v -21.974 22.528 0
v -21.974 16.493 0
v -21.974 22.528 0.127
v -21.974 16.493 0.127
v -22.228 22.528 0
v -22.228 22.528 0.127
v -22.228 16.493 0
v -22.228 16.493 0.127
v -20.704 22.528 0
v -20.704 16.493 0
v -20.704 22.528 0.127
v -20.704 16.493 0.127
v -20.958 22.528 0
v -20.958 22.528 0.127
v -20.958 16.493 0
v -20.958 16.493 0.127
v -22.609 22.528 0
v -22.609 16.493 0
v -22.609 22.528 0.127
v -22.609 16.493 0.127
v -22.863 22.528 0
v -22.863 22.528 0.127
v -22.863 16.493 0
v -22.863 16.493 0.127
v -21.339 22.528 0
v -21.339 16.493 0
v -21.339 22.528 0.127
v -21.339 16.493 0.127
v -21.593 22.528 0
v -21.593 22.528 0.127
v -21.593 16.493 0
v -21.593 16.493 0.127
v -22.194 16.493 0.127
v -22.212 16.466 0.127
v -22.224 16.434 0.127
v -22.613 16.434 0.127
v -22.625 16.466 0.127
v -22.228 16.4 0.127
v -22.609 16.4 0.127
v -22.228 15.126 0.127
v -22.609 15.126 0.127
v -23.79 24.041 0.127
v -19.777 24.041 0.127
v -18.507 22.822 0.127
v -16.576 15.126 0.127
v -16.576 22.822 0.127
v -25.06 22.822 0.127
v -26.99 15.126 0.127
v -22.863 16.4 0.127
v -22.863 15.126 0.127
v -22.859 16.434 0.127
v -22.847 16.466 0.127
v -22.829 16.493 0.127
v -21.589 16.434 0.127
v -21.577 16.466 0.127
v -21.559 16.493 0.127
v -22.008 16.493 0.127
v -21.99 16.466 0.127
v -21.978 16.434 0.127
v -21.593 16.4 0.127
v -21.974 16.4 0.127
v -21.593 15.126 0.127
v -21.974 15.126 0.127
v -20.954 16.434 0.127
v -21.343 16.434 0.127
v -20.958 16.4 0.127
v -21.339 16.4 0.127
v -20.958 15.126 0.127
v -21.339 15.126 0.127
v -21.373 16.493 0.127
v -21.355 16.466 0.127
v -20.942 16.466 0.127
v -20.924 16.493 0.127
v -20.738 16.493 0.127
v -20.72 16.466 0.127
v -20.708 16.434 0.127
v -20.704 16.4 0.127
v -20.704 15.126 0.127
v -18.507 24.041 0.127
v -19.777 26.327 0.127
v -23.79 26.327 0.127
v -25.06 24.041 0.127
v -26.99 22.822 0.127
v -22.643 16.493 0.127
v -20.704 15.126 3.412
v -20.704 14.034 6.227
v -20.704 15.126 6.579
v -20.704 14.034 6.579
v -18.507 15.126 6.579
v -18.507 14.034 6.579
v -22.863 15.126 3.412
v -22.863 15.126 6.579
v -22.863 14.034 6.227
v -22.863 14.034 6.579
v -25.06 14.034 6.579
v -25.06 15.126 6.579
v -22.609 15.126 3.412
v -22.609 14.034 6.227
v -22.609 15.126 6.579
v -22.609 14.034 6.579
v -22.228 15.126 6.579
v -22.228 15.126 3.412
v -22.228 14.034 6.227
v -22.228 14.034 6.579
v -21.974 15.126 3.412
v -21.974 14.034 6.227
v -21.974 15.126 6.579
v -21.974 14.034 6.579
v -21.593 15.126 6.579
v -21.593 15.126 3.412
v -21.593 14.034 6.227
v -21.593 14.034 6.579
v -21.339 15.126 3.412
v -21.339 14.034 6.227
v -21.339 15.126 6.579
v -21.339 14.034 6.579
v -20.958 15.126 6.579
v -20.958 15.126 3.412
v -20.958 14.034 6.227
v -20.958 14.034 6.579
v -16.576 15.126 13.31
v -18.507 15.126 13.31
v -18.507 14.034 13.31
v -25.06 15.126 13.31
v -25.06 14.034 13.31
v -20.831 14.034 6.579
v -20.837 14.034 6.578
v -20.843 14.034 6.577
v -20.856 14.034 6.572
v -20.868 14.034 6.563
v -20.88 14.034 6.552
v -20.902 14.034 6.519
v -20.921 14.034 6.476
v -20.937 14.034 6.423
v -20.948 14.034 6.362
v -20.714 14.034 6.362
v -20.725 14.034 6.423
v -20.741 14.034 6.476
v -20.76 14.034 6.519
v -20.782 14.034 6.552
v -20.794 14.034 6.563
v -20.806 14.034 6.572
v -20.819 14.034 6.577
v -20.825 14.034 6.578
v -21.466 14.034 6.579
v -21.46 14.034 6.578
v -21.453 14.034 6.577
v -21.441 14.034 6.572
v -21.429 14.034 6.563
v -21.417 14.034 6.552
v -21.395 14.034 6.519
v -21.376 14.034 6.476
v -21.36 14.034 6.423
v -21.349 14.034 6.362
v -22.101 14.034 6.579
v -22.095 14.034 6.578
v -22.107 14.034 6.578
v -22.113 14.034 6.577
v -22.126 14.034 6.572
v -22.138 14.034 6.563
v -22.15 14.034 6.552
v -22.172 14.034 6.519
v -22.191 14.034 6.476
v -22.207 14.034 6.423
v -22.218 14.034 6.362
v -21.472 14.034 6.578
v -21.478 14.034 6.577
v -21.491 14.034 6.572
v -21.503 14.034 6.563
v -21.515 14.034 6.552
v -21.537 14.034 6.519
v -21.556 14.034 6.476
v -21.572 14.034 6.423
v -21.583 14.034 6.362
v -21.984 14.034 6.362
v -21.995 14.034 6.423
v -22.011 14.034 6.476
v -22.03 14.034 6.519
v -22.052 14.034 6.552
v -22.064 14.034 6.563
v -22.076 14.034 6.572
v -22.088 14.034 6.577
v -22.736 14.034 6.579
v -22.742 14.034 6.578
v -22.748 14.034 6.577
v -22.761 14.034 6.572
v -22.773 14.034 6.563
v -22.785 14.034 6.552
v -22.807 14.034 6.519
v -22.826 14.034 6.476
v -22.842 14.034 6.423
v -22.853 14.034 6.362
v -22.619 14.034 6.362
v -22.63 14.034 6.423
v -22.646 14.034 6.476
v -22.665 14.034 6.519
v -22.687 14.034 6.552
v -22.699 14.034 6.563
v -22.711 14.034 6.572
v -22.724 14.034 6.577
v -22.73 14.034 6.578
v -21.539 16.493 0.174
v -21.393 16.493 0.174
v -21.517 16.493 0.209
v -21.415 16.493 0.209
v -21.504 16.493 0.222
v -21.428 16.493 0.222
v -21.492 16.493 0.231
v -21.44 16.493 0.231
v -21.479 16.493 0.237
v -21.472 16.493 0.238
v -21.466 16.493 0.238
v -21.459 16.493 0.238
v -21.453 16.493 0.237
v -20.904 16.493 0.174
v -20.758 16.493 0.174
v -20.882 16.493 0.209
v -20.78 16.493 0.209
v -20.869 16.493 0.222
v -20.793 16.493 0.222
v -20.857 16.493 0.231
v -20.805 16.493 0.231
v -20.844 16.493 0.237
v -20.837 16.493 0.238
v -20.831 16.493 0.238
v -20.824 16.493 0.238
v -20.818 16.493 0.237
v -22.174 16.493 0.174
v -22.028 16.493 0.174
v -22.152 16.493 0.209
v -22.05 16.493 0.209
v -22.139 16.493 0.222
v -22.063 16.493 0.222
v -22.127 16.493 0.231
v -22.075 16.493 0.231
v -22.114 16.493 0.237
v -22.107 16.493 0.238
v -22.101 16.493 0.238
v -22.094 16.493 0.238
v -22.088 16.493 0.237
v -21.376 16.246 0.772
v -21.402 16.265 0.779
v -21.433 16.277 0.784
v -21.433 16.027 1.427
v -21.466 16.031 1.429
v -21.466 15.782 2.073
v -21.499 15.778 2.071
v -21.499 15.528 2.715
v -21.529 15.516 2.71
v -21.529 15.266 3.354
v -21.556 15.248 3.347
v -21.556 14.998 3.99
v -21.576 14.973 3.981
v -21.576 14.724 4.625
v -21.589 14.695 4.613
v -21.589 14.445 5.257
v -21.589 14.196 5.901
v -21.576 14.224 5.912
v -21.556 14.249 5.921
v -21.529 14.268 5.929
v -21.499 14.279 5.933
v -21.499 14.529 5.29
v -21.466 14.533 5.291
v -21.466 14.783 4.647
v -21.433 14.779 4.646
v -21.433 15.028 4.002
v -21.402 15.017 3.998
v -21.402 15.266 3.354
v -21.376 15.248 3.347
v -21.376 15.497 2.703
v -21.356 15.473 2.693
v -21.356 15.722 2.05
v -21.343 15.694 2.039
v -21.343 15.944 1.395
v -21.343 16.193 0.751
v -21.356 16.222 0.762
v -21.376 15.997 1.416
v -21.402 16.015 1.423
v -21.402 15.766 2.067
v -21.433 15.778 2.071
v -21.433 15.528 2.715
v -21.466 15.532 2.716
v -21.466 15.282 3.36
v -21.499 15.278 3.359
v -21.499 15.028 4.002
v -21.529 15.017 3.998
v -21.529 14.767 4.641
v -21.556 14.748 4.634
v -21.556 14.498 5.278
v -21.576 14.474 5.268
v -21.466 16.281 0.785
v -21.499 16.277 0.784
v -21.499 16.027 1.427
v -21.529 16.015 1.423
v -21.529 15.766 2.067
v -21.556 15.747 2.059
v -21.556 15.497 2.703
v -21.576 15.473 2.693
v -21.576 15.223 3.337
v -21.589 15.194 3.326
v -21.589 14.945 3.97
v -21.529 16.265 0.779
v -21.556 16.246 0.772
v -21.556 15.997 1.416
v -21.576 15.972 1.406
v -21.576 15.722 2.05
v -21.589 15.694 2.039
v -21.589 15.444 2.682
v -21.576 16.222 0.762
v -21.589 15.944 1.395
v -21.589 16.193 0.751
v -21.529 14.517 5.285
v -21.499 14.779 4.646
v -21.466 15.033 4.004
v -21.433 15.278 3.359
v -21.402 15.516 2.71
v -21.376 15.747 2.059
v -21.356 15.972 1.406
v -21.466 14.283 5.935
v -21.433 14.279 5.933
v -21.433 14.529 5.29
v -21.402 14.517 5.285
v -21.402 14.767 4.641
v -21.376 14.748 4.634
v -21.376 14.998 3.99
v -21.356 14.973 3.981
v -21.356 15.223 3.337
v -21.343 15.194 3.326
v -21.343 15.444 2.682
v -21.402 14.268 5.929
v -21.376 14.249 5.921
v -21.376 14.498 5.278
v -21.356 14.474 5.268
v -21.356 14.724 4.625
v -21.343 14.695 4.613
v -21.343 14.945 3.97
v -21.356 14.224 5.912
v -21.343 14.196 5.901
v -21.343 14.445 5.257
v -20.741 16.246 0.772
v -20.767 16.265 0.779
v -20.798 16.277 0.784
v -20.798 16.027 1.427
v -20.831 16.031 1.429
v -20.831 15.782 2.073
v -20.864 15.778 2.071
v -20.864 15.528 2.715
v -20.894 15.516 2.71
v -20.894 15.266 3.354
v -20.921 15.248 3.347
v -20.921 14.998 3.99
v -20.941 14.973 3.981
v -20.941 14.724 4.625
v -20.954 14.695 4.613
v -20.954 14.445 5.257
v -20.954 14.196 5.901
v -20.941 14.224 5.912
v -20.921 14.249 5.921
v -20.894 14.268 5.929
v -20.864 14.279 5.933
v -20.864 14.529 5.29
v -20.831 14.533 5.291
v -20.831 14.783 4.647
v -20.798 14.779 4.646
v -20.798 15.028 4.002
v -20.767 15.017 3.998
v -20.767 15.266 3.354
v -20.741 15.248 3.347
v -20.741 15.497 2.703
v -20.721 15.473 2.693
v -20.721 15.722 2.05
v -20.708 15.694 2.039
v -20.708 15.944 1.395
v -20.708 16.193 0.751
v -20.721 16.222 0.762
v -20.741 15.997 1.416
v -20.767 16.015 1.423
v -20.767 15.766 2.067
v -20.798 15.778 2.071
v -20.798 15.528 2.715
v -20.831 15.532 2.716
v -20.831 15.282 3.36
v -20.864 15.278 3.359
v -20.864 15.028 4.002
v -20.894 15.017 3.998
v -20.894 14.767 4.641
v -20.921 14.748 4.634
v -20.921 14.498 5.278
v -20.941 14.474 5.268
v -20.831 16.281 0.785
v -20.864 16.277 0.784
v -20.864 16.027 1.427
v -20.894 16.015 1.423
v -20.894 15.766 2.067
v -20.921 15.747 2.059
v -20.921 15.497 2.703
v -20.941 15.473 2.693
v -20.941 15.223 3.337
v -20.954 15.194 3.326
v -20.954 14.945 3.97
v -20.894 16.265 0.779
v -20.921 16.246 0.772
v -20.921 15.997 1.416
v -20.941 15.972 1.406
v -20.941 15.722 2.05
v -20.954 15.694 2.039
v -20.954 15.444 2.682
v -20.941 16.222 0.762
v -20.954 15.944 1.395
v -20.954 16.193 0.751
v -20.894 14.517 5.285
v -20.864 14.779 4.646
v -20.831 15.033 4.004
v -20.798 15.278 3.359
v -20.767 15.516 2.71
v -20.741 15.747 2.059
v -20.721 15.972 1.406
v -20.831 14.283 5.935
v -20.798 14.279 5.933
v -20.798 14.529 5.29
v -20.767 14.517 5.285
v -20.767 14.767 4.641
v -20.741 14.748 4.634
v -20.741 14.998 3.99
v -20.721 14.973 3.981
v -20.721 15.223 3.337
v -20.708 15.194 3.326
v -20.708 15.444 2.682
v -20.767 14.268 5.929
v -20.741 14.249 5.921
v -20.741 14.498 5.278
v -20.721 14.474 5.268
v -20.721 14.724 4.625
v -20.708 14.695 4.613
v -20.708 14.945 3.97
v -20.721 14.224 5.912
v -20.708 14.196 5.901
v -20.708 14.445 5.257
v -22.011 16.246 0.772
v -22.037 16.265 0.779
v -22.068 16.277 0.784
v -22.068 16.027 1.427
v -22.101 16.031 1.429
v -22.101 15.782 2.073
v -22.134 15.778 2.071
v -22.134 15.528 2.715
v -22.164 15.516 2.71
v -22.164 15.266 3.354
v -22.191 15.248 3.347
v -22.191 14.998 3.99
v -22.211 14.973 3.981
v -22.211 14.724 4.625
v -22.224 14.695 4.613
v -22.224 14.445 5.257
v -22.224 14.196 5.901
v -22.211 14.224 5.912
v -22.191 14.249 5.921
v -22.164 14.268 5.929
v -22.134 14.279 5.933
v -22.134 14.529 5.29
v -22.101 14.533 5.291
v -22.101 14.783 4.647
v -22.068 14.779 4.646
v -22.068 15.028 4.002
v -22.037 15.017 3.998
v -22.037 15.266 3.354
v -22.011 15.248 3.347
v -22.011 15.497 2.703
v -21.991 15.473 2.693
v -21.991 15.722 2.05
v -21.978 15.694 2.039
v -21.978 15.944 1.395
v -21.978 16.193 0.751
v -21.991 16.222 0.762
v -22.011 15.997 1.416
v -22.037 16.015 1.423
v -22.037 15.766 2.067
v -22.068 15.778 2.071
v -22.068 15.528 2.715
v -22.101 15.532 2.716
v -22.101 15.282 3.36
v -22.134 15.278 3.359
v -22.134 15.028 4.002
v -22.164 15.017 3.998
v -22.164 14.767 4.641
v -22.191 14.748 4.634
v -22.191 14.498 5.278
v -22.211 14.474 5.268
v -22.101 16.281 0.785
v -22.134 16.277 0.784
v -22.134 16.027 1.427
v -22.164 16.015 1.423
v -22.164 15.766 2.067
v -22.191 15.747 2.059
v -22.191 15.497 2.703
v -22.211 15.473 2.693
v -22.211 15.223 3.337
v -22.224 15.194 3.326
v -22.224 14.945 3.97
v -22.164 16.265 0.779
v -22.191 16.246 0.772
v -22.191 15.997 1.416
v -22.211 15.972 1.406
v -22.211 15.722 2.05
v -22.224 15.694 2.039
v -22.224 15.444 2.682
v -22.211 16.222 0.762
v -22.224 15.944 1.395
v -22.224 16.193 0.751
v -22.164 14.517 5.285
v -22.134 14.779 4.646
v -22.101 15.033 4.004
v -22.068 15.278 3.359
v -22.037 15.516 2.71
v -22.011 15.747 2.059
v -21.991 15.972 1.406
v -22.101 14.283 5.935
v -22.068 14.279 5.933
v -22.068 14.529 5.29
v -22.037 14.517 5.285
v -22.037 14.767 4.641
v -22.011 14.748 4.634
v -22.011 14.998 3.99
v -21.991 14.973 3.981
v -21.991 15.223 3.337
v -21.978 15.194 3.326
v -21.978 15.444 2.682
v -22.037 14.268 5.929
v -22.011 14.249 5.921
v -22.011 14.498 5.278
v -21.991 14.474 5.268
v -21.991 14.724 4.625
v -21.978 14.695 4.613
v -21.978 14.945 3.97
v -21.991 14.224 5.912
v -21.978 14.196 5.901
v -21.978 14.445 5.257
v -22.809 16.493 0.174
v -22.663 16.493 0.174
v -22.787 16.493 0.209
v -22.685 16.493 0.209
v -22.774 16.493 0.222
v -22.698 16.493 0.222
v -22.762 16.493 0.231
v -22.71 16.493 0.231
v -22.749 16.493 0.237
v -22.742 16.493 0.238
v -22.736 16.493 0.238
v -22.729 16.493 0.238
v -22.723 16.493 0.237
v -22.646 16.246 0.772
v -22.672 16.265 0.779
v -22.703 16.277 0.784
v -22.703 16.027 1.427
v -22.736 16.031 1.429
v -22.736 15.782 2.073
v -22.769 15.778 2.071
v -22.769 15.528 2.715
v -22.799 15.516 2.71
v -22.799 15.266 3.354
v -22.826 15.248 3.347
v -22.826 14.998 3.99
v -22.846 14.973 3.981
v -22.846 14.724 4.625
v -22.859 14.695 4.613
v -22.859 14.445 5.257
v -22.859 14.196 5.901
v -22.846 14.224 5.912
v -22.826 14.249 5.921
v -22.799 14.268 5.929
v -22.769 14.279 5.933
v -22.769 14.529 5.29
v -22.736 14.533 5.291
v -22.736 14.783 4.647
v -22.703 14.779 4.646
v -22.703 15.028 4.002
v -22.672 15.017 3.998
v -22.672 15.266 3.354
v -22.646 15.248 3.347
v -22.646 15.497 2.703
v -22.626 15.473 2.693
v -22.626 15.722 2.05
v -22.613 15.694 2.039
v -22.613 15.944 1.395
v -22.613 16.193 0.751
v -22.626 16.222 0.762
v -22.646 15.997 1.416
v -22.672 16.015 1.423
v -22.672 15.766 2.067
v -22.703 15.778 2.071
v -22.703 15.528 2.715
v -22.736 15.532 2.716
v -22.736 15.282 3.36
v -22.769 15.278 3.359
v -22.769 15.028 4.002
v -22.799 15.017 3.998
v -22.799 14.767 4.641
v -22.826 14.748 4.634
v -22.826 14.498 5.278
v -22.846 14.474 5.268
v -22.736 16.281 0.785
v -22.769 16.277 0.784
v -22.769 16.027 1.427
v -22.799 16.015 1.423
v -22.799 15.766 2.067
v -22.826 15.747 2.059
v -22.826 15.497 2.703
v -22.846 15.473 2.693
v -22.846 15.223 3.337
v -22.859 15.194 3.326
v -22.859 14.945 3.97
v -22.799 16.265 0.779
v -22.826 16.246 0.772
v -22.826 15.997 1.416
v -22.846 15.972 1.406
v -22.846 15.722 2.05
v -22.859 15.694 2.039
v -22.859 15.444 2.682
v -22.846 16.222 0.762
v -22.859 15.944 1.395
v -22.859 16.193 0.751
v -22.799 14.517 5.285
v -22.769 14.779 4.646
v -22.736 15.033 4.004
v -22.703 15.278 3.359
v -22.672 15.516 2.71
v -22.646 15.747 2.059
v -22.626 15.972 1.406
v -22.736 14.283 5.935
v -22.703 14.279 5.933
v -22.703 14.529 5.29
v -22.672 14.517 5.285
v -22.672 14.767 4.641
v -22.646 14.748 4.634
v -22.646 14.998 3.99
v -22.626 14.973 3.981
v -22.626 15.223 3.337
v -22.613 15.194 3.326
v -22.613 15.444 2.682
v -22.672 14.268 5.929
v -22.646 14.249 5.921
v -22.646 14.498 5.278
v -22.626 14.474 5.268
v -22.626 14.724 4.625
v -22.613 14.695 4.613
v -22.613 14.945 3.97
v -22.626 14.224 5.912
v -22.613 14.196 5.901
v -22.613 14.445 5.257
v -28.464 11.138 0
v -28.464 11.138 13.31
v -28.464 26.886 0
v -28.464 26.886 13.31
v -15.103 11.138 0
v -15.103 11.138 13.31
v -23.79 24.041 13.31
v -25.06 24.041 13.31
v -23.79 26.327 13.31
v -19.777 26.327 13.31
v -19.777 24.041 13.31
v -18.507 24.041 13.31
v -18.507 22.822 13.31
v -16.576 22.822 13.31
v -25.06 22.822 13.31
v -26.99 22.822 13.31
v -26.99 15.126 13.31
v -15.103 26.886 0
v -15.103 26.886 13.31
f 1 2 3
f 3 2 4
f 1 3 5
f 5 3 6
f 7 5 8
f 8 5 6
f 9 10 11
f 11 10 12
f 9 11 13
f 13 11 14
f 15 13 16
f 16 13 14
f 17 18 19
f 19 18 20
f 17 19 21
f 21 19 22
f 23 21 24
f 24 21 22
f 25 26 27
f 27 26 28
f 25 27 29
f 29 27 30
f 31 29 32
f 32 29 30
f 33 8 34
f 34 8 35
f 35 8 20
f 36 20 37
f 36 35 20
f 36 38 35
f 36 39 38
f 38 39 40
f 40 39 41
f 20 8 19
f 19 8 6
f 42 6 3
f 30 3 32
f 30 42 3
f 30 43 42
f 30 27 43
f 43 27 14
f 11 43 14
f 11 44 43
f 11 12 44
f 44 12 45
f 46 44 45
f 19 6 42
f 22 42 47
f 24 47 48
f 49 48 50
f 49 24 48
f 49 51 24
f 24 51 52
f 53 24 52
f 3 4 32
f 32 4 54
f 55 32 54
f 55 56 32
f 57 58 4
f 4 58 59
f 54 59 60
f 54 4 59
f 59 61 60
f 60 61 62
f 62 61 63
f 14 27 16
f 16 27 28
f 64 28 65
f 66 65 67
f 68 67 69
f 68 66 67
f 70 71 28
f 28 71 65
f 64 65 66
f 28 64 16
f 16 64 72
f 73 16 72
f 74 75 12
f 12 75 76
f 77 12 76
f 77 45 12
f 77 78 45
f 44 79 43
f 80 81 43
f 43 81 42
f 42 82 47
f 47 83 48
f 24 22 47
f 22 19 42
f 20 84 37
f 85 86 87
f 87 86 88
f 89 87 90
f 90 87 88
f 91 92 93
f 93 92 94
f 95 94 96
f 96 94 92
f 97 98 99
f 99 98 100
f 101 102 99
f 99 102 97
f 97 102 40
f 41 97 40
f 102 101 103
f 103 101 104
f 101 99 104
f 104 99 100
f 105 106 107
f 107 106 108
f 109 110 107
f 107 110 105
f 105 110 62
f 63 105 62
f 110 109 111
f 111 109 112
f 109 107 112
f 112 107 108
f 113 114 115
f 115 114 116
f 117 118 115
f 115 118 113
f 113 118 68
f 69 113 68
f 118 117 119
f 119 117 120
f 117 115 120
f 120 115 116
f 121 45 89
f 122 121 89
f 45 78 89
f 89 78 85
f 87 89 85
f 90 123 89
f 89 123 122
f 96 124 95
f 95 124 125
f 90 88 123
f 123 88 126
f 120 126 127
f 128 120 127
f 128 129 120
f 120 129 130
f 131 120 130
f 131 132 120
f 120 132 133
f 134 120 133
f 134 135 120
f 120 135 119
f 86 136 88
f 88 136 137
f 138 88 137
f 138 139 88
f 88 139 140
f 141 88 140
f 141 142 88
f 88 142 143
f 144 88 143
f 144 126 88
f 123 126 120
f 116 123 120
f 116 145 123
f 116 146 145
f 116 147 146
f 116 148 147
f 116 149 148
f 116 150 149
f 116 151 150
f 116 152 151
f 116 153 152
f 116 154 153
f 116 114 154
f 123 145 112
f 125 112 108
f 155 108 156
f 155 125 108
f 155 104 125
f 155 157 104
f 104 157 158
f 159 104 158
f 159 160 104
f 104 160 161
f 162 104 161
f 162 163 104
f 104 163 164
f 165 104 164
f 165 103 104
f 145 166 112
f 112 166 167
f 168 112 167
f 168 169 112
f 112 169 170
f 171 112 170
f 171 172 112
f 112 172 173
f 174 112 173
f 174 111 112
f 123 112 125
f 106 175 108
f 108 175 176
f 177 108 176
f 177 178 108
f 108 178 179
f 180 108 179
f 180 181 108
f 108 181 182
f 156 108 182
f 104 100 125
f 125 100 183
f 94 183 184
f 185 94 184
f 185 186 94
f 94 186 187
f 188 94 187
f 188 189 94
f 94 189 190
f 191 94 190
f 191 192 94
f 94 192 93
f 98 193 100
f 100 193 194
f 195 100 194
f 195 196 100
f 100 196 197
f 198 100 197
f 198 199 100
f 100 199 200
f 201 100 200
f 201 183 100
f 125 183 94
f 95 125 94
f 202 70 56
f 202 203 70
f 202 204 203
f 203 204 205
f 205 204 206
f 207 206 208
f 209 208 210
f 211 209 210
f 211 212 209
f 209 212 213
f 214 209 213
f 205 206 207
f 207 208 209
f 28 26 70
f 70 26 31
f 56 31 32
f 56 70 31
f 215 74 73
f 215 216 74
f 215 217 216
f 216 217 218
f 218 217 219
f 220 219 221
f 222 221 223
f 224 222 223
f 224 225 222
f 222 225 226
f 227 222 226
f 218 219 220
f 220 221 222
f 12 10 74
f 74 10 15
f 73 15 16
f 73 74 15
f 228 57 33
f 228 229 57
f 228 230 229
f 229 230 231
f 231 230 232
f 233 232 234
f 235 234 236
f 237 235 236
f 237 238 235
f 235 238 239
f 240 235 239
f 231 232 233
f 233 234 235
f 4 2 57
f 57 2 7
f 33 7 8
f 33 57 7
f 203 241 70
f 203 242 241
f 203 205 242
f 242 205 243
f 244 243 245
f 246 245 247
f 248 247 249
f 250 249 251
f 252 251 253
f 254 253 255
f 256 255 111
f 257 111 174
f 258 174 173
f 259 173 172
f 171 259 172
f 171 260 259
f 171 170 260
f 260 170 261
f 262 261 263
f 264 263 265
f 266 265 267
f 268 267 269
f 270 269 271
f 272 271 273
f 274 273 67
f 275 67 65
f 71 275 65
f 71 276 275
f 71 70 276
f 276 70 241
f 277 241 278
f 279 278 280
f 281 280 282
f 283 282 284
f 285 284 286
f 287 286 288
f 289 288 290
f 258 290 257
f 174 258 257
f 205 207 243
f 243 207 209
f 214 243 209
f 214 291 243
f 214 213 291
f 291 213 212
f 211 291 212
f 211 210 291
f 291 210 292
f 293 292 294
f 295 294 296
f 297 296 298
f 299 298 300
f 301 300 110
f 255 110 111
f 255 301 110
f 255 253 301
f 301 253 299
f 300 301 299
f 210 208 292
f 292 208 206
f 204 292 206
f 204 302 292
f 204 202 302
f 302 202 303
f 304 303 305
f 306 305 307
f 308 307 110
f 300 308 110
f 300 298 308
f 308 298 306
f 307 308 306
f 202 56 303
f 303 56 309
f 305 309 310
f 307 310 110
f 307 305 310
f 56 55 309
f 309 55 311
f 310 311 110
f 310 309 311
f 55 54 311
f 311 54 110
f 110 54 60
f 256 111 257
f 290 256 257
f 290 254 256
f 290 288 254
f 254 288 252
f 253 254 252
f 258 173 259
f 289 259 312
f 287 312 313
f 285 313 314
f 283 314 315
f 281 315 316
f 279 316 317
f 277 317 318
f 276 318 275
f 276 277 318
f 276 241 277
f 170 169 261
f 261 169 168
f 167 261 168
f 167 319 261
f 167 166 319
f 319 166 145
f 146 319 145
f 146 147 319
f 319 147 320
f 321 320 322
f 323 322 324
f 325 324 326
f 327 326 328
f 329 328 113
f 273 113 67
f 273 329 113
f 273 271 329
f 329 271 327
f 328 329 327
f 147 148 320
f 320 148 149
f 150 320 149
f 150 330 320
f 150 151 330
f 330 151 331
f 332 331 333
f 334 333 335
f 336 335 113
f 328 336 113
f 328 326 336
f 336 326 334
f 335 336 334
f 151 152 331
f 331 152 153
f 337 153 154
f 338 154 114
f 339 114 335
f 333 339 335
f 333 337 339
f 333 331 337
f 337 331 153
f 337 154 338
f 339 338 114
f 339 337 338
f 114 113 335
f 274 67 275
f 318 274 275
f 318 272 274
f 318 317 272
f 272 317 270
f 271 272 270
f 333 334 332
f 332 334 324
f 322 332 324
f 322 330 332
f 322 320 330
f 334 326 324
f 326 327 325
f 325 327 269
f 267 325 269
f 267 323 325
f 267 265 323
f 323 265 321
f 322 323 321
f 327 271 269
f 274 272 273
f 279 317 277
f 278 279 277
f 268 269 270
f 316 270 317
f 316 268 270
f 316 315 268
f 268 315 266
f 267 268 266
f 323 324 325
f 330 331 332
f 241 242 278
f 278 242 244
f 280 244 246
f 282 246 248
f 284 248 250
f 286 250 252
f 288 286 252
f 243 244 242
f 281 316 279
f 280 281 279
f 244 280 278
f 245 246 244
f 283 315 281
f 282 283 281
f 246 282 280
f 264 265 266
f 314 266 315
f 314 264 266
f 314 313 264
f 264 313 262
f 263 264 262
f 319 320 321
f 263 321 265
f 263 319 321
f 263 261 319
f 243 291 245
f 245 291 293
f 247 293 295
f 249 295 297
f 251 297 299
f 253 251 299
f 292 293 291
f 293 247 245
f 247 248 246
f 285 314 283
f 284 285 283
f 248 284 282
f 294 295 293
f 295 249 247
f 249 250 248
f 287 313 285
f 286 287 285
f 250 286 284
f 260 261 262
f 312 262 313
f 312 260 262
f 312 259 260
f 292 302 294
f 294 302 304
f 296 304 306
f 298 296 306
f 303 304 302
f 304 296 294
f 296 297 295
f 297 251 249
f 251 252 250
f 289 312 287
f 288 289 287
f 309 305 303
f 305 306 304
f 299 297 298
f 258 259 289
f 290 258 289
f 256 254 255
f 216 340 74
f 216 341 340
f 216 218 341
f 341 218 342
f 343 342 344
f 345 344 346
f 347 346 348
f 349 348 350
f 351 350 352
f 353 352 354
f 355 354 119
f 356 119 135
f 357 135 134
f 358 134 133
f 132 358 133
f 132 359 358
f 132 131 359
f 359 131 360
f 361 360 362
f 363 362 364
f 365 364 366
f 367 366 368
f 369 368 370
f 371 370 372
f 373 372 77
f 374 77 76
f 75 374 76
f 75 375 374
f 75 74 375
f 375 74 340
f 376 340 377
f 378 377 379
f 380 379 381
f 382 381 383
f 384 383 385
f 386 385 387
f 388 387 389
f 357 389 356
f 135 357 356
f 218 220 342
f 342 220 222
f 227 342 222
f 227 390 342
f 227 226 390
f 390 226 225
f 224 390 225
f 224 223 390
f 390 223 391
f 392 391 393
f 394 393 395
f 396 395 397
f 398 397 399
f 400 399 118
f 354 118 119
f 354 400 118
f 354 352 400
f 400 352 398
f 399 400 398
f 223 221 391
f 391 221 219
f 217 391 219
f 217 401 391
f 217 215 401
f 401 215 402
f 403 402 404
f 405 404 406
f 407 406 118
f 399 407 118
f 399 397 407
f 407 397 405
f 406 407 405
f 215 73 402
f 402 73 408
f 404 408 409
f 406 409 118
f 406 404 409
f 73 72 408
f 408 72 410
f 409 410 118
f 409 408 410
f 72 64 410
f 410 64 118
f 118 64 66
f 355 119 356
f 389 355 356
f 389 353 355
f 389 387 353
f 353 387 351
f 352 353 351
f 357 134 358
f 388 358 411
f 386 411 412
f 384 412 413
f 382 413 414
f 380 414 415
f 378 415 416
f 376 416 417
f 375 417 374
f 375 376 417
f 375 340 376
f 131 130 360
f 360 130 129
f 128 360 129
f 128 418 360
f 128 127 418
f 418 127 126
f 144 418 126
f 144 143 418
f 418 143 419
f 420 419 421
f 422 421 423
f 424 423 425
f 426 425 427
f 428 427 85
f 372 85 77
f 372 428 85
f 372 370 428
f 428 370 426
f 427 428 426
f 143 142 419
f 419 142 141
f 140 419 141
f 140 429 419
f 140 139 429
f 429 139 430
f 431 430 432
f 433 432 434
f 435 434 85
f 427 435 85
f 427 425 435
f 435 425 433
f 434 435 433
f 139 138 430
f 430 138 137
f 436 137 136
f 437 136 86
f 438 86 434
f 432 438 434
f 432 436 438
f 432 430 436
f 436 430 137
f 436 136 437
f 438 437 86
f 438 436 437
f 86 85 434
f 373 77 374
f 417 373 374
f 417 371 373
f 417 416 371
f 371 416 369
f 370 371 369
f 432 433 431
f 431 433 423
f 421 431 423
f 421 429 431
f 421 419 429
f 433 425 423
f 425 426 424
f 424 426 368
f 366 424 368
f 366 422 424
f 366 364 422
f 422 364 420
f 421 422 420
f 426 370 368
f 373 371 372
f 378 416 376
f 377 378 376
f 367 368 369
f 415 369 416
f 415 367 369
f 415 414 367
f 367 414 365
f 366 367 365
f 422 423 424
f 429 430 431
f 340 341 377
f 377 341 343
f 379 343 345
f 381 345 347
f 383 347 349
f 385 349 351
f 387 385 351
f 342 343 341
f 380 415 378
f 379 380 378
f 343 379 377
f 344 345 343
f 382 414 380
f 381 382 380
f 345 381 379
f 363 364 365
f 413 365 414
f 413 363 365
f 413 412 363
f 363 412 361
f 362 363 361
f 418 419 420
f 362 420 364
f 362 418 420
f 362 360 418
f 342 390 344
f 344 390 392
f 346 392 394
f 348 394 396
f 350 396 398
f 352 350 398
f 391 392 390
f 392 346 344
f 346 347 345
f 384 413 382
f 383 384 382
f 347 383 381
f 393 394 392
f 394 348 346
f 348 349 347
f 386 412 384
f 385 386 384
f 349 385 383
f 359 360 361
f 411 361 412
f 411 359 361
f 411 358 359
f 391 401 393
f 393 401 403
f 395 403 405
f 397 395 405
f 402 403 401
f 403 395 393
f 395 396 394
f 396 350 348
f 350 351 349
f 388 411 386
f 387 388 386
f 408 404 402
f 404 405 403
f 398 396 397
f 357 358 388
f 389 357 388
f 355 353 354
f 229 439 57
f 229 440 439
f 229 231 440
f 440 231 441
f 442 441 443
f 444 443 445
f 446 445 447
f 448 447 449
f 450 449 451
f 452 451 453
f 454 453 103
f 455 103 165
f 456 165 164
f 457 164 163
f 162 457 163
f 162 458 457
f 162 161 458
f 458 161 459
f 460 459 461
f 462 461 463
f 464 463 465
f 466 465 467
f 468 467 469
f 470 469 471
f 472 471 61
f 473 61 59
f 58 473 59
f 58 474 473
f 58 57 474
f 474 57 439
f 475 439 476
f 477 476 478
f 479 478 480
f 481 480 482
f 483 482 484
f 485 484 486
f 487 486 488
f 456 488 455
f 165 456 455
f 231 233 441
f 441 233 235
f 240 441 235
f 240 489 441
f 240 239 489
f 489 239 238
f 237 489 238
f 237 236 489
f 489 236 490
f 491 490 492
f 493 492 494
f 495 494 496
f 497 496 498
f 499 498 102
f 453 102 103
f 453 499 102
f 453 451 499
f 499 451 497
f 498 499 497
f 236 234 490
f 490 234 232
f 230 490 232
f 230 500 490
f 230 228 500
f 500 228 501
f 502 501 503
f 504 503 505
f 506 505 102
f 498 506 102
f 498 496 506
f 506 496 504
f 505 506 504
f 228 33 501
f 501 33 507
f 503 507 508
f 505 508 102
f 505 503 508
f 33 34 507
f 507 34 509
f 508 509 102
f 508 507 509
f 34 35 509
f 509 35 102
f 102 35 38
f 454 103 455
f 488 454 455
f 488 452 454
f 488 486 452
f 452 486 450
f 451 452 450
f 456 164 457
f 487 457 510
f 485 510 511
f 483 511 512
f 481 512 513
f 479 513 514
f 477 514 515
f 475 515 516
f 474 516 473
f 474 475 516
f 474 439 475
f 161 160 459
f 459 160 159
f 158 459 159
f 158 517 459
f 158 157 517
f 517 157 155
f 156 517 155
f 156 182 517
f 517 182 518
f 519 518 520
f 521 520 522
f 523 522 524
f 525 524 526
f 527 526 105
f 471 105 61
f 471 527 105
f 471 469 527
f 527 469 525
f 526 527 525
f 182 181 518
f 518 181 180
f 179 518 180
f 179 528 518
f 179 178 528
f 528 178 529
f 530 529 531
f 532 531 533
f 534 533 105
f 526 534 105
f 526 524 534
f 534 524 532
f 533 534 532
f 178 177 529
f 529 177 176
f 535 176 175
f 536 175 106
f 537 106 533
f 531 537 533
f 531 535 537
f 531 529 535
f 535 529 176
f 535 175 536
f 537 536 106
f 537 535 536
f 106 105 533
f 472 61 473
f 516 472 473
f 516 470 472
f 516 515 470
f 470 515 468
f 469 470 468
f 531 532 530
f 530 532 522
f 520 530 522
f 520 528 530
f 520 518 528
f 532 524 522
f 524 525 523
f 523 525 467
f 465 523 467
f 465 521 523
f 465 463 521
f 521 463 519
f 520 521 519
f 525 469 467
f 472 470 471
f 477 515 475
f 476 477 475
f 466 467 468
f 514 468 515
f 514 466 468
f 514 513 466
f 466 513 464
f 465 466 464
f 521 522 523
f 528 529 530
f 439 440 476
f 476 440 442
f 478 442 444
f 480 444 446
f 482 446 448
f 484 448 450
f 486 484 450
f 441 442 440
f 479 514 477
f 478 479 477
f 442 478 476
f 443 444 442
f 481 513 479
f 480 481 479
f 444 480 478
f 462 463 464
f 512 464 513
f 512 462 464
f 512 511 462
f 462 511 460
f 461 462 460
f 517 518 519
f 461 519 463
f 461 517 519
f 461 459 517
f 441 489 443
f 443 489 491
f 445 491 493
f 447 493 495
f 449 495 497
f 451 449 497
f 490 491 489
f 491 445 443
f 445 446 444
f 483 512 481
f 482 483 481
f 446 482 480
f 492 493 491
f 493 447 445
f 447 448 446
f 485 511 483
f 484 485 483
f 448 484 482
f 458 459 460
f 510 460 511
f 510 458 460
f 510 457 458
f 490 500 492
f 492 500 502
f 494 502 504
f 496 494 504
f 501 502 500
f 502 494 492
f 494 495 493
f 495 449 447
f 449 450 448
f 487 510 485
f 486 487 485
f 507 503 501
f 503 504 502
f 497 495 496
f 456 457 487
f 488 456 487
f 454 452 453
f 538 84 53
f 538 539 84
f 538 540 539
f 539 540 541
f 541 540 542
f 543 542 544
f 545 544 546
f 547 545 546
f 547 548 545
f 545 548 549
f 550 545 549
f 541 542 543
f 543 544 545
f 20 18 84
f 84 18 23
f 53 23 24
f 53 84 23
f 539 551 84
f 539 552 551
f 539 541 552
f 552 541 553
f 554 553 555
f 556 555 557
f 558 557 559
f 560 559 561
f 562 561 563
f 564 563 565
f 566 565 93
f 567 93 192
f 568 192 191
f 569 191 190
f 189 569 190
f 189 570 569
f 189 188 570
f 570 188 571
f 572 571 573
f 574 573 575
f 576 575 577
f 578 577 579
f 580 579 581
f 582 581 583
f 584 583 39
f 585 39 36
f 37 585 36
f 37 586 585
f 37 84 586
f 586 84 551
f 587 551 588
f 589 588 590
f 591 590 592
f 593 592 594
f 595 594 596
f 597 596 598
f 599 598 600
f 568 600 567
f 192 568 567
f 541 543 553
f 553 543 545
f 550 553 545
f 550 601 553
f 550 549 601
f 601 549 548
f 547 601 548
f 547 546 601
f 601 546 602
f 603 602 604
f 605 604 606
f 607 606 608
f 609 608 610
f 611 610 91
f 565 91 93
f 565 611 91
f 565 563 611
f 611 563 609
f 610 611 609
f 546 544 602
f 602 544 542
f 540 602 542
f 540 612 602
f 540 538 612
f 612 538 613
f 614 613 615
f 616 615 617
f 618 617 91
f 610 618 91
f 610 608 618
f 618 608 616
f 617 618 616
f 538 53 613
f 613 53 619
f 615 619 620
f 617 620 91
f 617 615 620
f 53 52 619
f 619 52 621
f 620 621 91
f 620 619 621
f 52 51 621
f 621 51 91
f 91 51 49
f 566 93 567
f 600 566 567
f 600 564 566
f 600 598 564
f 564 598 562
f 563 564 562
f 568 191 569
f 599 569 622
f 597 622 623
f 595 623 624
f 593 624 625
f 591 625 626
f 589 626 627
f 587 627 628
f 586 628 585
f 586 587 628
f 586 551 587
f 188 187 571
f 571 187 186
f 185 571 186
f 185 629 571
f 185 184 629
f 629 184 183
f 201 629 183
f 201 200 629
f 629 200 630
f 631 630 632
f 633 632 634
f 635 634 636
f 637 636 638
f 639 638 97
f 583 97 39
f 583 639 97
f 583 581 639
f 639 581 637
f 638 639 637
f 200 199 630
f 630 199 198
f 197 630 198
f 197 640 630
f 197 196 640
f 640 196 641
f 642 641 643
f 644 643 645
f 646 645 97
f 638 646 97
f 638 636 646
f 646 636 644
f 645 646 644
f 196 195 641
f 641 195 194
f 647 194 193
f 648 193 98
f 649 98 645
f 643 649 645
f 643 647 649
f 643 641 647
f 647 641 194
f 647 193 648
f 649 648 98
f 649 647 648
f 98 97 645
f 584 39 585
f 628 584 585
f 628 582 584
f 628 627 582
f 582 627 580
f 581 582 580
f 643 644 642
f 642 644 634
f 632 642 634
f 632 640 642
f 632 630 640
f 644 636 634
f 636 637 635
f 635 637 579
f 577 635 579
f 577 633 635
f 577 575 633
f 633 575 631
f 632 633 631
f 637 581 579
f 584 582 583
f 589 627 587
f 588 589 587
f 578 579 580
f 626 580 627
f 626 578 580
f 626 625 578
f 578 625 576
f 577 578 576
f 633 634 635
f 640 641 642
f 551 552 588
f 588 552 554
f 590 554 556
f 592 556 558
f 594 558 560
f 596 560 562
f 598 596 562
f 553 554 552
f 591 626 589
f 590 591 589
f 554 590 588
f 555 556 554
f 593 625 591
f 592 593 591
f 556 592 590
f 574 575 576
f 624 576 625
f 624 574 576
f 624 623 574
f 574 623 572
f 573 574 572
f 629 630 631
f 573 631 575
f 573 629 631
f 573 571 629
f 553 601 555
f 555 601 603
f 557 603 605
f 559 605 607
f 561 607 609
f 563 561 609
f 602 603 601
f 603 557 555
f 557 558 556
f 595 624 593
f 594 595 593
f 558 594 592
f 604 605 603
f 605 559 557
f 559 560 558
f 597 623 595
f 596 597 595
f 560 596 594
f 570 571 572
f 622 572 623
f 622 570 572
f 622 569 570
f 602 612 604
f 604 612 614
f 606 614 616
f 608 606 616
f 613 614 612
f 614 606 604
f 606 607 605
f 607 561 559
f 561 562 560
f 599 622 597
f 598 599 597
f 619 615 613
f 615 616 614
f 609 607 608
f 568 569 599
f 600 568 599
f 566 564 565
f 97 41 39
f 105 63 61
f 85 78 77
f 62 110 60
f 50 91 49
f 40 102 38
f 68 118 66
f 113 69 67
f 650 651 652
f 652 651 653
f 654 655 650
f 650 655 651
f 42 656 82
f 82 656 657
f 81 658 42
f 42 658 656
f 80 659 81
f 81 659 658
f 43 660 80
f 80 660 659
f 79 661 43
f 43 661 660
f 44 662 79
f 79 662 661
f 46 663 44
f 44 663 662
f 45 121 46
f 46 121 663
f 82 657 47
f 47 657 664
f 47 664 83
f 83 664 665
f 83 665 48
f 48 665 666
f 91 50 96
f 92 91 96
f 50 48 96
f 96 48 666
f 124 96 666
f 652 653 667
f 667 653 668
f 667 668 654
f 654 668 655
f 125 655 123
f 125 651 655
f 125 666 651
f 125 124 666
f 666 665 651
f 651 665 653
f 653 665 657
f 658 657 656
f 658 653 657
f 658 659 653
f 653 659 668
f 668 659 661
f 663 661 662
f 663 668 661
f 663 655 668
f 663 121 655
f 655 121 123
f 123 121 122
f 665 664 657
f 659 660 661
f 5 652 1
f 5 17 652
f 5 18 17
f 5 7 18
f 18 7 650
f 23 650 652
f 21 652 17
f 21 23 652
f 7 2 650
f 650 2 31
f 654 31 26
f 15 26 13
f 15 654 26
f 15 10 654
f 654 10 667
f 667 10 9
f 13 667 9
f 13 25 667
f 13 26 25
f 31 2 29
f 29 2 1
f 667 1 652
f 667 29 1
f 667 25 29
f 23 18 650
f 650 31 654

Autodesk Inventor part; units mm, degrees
ref_plane "YZ Plane" through (0, 0, 0) normal (1, 0, 0) x (0, 1, 0)
ref_plane "XZ Plane" through (0, 0, 0) normal (0, 1, 0) x (-1, 0, 0)
ref_plane "XY Plane" through (0, 0, 0) normal (0, 0, 1) x (1, 0, 0)
sketch "Sketch1" plane through (0, 0, 0) normal (0, 0, 1) x (1, 0, 0)
  line L0 (-15.1032, 11.1381) -> (-28.4636, 11.1381)
  line L1 (-28.4636, 11.1381) -> (-28.4636, 26.8861)
  line L2 (-28.4636, 26.8861) -> (-15.1032, 26.8861)
  line L3 (-15.1032, 26.8861) -> (-15.1032, 11.1381)
  dimension "d0" = 13.3604
  dimension "d1" = 15.748
extrude "Extrusion1" add sketch "Sketch1" along normal blind 13.3096
sketch "Sketch2" plane through (0, 0, 13.3096) normal (0, 0, 1) x (1, 0, 0)
  line L0 (-28.4636, 11.1381) -> (-28.4636, 26.8861) projected
  line L1 (-15.1032, 11.1381) -> (-28.4636, 11.1381) projected
  line L2 (-15.1032, 26.8861) -> (-15.1032, 11.1381) projected
  line L3 (-28.4636, 26.8861) -> (-15.1032, 26.8861) projected
  line L4 (-23.79, 26.3273) -> (-19.7768, 26.3273)
  line L5 (-19.7768, 26.3273) -> (-19.7768, 24.0413)
  line L6 (-19.7768, 24.0413) -> (-23.79, 24.0413)
  line L7 (-23.79, 24.0413) -> (-23.79, 26.3273)
  line L8 (-25.06, 24.0413) -> (-18.5068, 24.0413)
  line L9 (-18.5068, 24.0413) -> (-18.5068, 22.8221)
  line L10 (-18.5068, 22.8221) -> (-25.06, 22.8221)
  line L11 (-25.06, 22.8221) -> (-25.06, 24.0413)
  line L12 (-16.5764, 22.8221) -> (-26.9904, 22.8221)
  line L13 (-26.9904, 22.8221) -> (-26.9904, 15.1259)
  line L14 (-26.9904, 15.1259) -> (-16.5764, 15.1259)
  line L15 (-16.5764, 15.1259) -> (-16.5764, 22.8221)
  line L16 (-25.06, 15.1259) -> (-18.5068, 15.1259)
  line L17 (-18.5068, 15.1259) -> (-18.5068, 14.0337)
  line L18 (-18.5068, 14.0337) -> (-25.06, 14.0337)
  line L19 (-25.06, 14.0337) -> (-25.06, 15.1259)
  dimension "d4" = 0.5588
  dimension "d5" = 4.6736
  dimension "d6" = 4.6736
  dimension "d7" = 2.286
  dimension "d9" = 1.27
  dimension "d10" = 1.27
  dimension "d11" = 1.2192
  dimension "d13" = 6.5532
  dimension "d14" = 1.9304
  dimension "d15" = 1.9304
  dimension "d16" = 10.414
  dimension "d17" = 7.6962
  dimension "d18" = 1.9304
  dimension "d19" = 1.9304
  dimension "d20" = 1.0922
  dimension "d21" = 2.8956
extrude "Extrusion2" cut sketch "Sketch2" against normal blind 14.1478 contours L4 L5 L6 L7 | L6 L8 L9 L10 L11 | L10 L12 L15 L14 L13 | L14 L17 L18 L19
sketch "Sketch3" plane through (0, 0, 0) normal (0, 0, -1) x (-1, 0, 0)
  line L0 (15.1032, 11.1381) -> (28.4636, 11.1381) projected
  line L1 (28.4636, 11.1381) -> (28.4636, 26.8861) projected
  line L2 (28.4636, 26.8861) -> (15.1032, 26.8861) projected
  line L3 (15.1032, 26.8861) -> (15.1032, 11.1381) projected
extrude "Extrusion3" add sketch "Sketch3" against normal blind 0.127
sketch "Sketch4" plane through (0, 0, 0.127) normal (0, 0, 1) x (1, 0, 0)
  line L0 (-25.06, 14.0337) -> (-25.06, 15.1259) projected
  line L1 (-18.5068, 14.0337) -> (-25.06, 14.0337) projected
  line L2 (-18.5068, 15.1259) -> (-18.5068, 14.0337) projected
  line L3 (-22.8629, 14.0337) -> (-22.6089, 14.0337)
  line L4 (-22.6089, 14.0337) -> (-22.6089, 16.4931)
  line L5 (-22.6089, 16.4931) -> (-22.8629, 16.4931)
  line L6 (-22.8629, 16.4931) -> (-22.8629, 14.0337)
  line L7 (-22.2279, 14.0337) -> (-21.9739, 14.0337)
  line L8 (-21.9739, 14.0337) -> (-21.9739, 16.4931)
  line L9 (-21.9739, 16.4931) -> (-22.2279, 16.4931)
  line L10 (-22.2279, 16.4931) -> (-22.2279, 14.0337)
  line L11 (-21.5929, 14.0337) -> (-21.3389, 14.0337)
  line L12 (-21.3389, 14.0337) -> (-21.3389, 16.4931)
  line L13 (-21.3389, 16.4931) -> (-21.5929, 16.4931)
  line L14 (-21.5929, 16.4931) -> (-21.5929, 14.0337)
  line L15 (-20.9579, 14.0337) -> (-20.7039, 14.0337)
  line L16 (-20.7039, 14.0337) -> (-20.7039, 16.4931)
  line L17 (-20.7039, 16.4931) -> (-20.9579, 16.4931)
  line L18 (-20.9579, 16.4931) -> (-20.9579, 14.0337)
  dimension "d26" = 0.254
  dimension "d27" = 0.254
  dimension "d28" = 0.254
  dimension "d29" = 0.254
  dimension "d30" = 0.381
  dimension "d31" = 0.381
  dimension "d32" = 0.381
  dimension "d33" = 2.1971
  dimension "d34" = 2.1971
extrude "Extrusion4" add sketch "Sketch4" along normal blind 6.4516
sketch "Sketch5" plane through (-22.8629, 14.0337, 0.127) normal (-1, 0, 0) x (0, 0, 1)
  line L0 (6.4516, 0) -> (6.4516, 2.4594) projected
  line L1 (0, 2.4594) -> (6.4516, 2.4594) projected
  line L2 (6.4516, 0) -> (0.1115, 2.4594)
extrude "Extrusion5" cut sketch "Sketch5" against normal blind 3.81
fillet "Fillet1" radius 0.127 8 edges at (-22.8629, 15.2634, 3.4085) (-22.6089, 15.2634, 3.4085) (-21.9739, 15.2634, 3.4085) (-22.2279, 15.2634, 3.4085) (-21.5929, 15.2634, 3.4085) (-21.3389, 15.2634, 3.4085) (-20.9579, 15.2634, 3.4085) (-20.7039, 15.2634, 3.4085)
sketch "Sketch6" plane through (0, 0, 0.127) normal (0, 0, 1) x (1, 0, 0)
  line L0 (-22.6089, 16.4001) -> (-22.6089, 14.0337) projected
  line L1 (-21.9739, 16.4001) -> (-21.9739, 14.0337) projected
  line L2 (-21.3389, 16.4001) -> (-21.3389, 14.0337) projected
  line L3 (-20.7039, 16.4001) -> (-20.7039, 14.0337) projected
  line L4 (-18.5068, 14.0337) -> (-20.7039, 14.0337) projected
  line L5 (-22.8629, 14.0337) -> (-25.06, 14.0337) projected
  line L6 (-22.8629, 14.0337) -> (-22.8629, 16.4001) projected
  line L7 (-25.0727, 14.0337) -> (-22.8629, 14.0337)
  line L8 (-22.8629, 14.0337) -> (-22.8629, 15.1259)
  line L9 (-22.8629, 15.1259) -> (-25.0727, 15.1259)
  line L10 (-25.0727, 15.1259) -> (-25.0727, 14.0337)
  line L11 (-22.6089, 15.1259) -> (-22.2279, 15.1259)
  line L12 (-22.2279, 15.1259) -> (-22.2279, 14.0337)
  line L13 (-22.2279, 14.0337) -> (-22.6089, 14.0337)
  line L14 (-22.6089, 14.0337) -> (-22.6089, 15.1259)
  line L15 (-21.9739, 15.1259) -> (-21.5929, 15.1259)
  line L16 (-21.5929, 15.1259) -> (-21.5929, 14.0337)
  line L17 (-21.5929, 14.0337) -> (-21.9739, 14.0337)
  line L18 (-21.9739, 14.0337) -> (-21.9739, 15.1259)
  line L19 (-21.3389, 15.1259) -> (-20.9579, 15.1259)
  line L20 (-20.9579, 15.1259) -> (-20.9579, 14.0337)
  line L21 (-20.9579, 14.0337) -> (-21.3389, 14.0337)
  line L22 (-21.3389, 14.0337) -> (-21.3389, 15.1259)
  line L23 (-20.7039, 15.1259) -> (-18.4941, 15.1259)
  line L24 (-18.4941, 15.1259) -> (-18.4941, 14.0337)
  line L25 (-18.4941, 14.0337) -> (-20.7039, 14.0337)
  line L26 (-20.7039, 14.0337) -> (-20.7039, 15.1259)
  line L27 (-22.8629, 14.0337) -> (-25.0727, 14.0337)
  line L28 (-25.0727, 14.0337) -> (-25.0727, 15.1259)
  line L29 (-25.0727, 15.1259) -> (-22.8629, 15.1259)
  line L30 (-22.8629, 15.1259) -> (-22.8629, 14.0337)
  line L31 (-20.7039, 15.1259) -> (-18.4941, 15.1259)
  line L32 (-18.4941, 15.1259) -> (-18.4941, 14.0337)
  line L33 (-18.4941, 14.0337) -> (-20.7039, 14.0337)
  line L34 (-20.7039, 14.0337) -> (-20.7039, 15.1259)
  point P0 (-25.06, 15.1259)
  dimension "d40" = 1.0922
  dimension "d41" = 1.0922
  dimension "d42" = 0
  dimension "d43" = 0
  dimension "d44" = 0
  dimension "d45" = 0
  dimension "d46" = 2.2098
  dimension "d47" = 2.2098
extrude "Extrusion6" add sketch "Sketch6" along normal blind 6.4516
sketch "Sketch7" plane through (0, 0, 0.127) normal (0, 0, 1) x (1, 0, 0)
  line L0 (-22.8629, 15.1259) -> (-22.6089, 15.1259)
  line L1 (-22.6089, 15.1259) -> (-22.6089, 22.5284)
  line L2 (-22.6089, 22.5284) -> (-22.8629, 22.5284)
  line L3 (-22.8629, 22.5284) -> (-22.8629, 15.1259)
  line L4 (-22.2279, 15.1259) -> (-21.9739, 15.1259)
  line L5 (-21.9739, 15.1259) -> (-21.9739, 22.5284)
  line L6 (-21.9739, 22.5284) -> (-22.2279, 22.5284)
  line L7 (-22.2279, 22.5284) -> (-22.2279, 15.1259)
  line L8 (-21.5929, 15.1259) -> (-21.3389, 15.1259)
  line L9 (-21.3389, 15.1259) -> (-21.3389, 22.5284)
  line L10 (-21.3389, 22.5284) -> (-21.5929, 22.5284)
  line L11 (-21.5929, 22.5284) -> (-21.5929, 15.1259)
  line L12 (-20.9579, 15.1259) -> (-20.7039, 15.1259)
  line L13 (-20.7039, 15.1259) -> (-20.7039, 22.5284)
  line L14 (-20.7039, 22.5284) -> (-20.9579, 22.5284)
  line L15 (-20.9579, 22.5284) -> (-20.9579, 15.1259)
  line L16 (-22.9407, 16.4931) -> (-20.3193, 16.4931)
  line L17 (-20.7381, 16.4931) -> (-20.9579, 16.4931)
  line L18 (-20.9579, 16.4931) -> (-20.9579, 22.5284)
  line L19 (-20.9579, 22.5284) -> (-20.7381, 22.5284)
  line L20 (-21.5929, 22.5284) -> (-21.3731, 22.5284)
  line L21 (-21.3731, 16.4931) -> (-21.5929, 16.4931)
  line L22 (-21.5929, 16.4931) -> (-21.5929, 22.5284)
  line L23 (-20.7039, 16.4931) -> (-20.9579, 16.4931)
  line L24 (-20.9579, 16.4931) -> (-20.9579, 22.5284)
  line L25 (-20.9579, 22.5284) -> (-20.7039, 22.5284)
  line L26 (-20.7039, 22.5284) -> (-20.7039, 16.4931)
  line L27 (-21.5929, 22.5284) -> (-21.3389, 22.5284)
  line L28 (-21.3389, 22.5284) -> (-21.3389, 16.4931)
  line L29 (-21.3389, 16.4931) -> (-21.5929, 16.4931)
  line L30 (-21.5929, 16.4931) -> (-21.5929, 22.5284)
  line L31 (-21.9739, 16.4931) -> (-22.2279, 16.4931)
  line L32 (-22.2279, 16.4931) -> (-22.2279, 22.5284)
  line L33 (-22.2279, 22.5284) -> (-21.9739, 22.5284)
  line L34 (-21.9739, 22.5284) -> (-21.9739, 16.4931)
  line L35 (-22.8629, 22.5284) -> (-22.6089, 22.5284)
  line L36 (-22.6089, 22.5284) -> (-22.6089, 16.4931)
  line L37 (-22.6089, 16.4931) -> (-22.8629, 16.4931)
  line L38 (-22.8629, 16.4931) -> (-22.8629, 22.5284)
extrude "Extrusion7" cut sketch "Sketch7" against normal blind 127 contours L15 L14 L13 L16 | L11 L10 L9 L16 | L7 L6 L5 L16 | L3 L2 L1 L16
equation "\"d6\" = d5"
equation "\"d10\" = d9"
equation "\"d15\" = d14"
equation "\"d27\" = d26"
equation "\"d28\" = d27"
equation "\"d29\" = d28"
equation "\"d31\" = d30"
equation "\"d32\" = d31"
equation "\"d40\" = d41"
equation "\"d47\" = d46"
properties part number "2009_CTS_EatherNetPort"
